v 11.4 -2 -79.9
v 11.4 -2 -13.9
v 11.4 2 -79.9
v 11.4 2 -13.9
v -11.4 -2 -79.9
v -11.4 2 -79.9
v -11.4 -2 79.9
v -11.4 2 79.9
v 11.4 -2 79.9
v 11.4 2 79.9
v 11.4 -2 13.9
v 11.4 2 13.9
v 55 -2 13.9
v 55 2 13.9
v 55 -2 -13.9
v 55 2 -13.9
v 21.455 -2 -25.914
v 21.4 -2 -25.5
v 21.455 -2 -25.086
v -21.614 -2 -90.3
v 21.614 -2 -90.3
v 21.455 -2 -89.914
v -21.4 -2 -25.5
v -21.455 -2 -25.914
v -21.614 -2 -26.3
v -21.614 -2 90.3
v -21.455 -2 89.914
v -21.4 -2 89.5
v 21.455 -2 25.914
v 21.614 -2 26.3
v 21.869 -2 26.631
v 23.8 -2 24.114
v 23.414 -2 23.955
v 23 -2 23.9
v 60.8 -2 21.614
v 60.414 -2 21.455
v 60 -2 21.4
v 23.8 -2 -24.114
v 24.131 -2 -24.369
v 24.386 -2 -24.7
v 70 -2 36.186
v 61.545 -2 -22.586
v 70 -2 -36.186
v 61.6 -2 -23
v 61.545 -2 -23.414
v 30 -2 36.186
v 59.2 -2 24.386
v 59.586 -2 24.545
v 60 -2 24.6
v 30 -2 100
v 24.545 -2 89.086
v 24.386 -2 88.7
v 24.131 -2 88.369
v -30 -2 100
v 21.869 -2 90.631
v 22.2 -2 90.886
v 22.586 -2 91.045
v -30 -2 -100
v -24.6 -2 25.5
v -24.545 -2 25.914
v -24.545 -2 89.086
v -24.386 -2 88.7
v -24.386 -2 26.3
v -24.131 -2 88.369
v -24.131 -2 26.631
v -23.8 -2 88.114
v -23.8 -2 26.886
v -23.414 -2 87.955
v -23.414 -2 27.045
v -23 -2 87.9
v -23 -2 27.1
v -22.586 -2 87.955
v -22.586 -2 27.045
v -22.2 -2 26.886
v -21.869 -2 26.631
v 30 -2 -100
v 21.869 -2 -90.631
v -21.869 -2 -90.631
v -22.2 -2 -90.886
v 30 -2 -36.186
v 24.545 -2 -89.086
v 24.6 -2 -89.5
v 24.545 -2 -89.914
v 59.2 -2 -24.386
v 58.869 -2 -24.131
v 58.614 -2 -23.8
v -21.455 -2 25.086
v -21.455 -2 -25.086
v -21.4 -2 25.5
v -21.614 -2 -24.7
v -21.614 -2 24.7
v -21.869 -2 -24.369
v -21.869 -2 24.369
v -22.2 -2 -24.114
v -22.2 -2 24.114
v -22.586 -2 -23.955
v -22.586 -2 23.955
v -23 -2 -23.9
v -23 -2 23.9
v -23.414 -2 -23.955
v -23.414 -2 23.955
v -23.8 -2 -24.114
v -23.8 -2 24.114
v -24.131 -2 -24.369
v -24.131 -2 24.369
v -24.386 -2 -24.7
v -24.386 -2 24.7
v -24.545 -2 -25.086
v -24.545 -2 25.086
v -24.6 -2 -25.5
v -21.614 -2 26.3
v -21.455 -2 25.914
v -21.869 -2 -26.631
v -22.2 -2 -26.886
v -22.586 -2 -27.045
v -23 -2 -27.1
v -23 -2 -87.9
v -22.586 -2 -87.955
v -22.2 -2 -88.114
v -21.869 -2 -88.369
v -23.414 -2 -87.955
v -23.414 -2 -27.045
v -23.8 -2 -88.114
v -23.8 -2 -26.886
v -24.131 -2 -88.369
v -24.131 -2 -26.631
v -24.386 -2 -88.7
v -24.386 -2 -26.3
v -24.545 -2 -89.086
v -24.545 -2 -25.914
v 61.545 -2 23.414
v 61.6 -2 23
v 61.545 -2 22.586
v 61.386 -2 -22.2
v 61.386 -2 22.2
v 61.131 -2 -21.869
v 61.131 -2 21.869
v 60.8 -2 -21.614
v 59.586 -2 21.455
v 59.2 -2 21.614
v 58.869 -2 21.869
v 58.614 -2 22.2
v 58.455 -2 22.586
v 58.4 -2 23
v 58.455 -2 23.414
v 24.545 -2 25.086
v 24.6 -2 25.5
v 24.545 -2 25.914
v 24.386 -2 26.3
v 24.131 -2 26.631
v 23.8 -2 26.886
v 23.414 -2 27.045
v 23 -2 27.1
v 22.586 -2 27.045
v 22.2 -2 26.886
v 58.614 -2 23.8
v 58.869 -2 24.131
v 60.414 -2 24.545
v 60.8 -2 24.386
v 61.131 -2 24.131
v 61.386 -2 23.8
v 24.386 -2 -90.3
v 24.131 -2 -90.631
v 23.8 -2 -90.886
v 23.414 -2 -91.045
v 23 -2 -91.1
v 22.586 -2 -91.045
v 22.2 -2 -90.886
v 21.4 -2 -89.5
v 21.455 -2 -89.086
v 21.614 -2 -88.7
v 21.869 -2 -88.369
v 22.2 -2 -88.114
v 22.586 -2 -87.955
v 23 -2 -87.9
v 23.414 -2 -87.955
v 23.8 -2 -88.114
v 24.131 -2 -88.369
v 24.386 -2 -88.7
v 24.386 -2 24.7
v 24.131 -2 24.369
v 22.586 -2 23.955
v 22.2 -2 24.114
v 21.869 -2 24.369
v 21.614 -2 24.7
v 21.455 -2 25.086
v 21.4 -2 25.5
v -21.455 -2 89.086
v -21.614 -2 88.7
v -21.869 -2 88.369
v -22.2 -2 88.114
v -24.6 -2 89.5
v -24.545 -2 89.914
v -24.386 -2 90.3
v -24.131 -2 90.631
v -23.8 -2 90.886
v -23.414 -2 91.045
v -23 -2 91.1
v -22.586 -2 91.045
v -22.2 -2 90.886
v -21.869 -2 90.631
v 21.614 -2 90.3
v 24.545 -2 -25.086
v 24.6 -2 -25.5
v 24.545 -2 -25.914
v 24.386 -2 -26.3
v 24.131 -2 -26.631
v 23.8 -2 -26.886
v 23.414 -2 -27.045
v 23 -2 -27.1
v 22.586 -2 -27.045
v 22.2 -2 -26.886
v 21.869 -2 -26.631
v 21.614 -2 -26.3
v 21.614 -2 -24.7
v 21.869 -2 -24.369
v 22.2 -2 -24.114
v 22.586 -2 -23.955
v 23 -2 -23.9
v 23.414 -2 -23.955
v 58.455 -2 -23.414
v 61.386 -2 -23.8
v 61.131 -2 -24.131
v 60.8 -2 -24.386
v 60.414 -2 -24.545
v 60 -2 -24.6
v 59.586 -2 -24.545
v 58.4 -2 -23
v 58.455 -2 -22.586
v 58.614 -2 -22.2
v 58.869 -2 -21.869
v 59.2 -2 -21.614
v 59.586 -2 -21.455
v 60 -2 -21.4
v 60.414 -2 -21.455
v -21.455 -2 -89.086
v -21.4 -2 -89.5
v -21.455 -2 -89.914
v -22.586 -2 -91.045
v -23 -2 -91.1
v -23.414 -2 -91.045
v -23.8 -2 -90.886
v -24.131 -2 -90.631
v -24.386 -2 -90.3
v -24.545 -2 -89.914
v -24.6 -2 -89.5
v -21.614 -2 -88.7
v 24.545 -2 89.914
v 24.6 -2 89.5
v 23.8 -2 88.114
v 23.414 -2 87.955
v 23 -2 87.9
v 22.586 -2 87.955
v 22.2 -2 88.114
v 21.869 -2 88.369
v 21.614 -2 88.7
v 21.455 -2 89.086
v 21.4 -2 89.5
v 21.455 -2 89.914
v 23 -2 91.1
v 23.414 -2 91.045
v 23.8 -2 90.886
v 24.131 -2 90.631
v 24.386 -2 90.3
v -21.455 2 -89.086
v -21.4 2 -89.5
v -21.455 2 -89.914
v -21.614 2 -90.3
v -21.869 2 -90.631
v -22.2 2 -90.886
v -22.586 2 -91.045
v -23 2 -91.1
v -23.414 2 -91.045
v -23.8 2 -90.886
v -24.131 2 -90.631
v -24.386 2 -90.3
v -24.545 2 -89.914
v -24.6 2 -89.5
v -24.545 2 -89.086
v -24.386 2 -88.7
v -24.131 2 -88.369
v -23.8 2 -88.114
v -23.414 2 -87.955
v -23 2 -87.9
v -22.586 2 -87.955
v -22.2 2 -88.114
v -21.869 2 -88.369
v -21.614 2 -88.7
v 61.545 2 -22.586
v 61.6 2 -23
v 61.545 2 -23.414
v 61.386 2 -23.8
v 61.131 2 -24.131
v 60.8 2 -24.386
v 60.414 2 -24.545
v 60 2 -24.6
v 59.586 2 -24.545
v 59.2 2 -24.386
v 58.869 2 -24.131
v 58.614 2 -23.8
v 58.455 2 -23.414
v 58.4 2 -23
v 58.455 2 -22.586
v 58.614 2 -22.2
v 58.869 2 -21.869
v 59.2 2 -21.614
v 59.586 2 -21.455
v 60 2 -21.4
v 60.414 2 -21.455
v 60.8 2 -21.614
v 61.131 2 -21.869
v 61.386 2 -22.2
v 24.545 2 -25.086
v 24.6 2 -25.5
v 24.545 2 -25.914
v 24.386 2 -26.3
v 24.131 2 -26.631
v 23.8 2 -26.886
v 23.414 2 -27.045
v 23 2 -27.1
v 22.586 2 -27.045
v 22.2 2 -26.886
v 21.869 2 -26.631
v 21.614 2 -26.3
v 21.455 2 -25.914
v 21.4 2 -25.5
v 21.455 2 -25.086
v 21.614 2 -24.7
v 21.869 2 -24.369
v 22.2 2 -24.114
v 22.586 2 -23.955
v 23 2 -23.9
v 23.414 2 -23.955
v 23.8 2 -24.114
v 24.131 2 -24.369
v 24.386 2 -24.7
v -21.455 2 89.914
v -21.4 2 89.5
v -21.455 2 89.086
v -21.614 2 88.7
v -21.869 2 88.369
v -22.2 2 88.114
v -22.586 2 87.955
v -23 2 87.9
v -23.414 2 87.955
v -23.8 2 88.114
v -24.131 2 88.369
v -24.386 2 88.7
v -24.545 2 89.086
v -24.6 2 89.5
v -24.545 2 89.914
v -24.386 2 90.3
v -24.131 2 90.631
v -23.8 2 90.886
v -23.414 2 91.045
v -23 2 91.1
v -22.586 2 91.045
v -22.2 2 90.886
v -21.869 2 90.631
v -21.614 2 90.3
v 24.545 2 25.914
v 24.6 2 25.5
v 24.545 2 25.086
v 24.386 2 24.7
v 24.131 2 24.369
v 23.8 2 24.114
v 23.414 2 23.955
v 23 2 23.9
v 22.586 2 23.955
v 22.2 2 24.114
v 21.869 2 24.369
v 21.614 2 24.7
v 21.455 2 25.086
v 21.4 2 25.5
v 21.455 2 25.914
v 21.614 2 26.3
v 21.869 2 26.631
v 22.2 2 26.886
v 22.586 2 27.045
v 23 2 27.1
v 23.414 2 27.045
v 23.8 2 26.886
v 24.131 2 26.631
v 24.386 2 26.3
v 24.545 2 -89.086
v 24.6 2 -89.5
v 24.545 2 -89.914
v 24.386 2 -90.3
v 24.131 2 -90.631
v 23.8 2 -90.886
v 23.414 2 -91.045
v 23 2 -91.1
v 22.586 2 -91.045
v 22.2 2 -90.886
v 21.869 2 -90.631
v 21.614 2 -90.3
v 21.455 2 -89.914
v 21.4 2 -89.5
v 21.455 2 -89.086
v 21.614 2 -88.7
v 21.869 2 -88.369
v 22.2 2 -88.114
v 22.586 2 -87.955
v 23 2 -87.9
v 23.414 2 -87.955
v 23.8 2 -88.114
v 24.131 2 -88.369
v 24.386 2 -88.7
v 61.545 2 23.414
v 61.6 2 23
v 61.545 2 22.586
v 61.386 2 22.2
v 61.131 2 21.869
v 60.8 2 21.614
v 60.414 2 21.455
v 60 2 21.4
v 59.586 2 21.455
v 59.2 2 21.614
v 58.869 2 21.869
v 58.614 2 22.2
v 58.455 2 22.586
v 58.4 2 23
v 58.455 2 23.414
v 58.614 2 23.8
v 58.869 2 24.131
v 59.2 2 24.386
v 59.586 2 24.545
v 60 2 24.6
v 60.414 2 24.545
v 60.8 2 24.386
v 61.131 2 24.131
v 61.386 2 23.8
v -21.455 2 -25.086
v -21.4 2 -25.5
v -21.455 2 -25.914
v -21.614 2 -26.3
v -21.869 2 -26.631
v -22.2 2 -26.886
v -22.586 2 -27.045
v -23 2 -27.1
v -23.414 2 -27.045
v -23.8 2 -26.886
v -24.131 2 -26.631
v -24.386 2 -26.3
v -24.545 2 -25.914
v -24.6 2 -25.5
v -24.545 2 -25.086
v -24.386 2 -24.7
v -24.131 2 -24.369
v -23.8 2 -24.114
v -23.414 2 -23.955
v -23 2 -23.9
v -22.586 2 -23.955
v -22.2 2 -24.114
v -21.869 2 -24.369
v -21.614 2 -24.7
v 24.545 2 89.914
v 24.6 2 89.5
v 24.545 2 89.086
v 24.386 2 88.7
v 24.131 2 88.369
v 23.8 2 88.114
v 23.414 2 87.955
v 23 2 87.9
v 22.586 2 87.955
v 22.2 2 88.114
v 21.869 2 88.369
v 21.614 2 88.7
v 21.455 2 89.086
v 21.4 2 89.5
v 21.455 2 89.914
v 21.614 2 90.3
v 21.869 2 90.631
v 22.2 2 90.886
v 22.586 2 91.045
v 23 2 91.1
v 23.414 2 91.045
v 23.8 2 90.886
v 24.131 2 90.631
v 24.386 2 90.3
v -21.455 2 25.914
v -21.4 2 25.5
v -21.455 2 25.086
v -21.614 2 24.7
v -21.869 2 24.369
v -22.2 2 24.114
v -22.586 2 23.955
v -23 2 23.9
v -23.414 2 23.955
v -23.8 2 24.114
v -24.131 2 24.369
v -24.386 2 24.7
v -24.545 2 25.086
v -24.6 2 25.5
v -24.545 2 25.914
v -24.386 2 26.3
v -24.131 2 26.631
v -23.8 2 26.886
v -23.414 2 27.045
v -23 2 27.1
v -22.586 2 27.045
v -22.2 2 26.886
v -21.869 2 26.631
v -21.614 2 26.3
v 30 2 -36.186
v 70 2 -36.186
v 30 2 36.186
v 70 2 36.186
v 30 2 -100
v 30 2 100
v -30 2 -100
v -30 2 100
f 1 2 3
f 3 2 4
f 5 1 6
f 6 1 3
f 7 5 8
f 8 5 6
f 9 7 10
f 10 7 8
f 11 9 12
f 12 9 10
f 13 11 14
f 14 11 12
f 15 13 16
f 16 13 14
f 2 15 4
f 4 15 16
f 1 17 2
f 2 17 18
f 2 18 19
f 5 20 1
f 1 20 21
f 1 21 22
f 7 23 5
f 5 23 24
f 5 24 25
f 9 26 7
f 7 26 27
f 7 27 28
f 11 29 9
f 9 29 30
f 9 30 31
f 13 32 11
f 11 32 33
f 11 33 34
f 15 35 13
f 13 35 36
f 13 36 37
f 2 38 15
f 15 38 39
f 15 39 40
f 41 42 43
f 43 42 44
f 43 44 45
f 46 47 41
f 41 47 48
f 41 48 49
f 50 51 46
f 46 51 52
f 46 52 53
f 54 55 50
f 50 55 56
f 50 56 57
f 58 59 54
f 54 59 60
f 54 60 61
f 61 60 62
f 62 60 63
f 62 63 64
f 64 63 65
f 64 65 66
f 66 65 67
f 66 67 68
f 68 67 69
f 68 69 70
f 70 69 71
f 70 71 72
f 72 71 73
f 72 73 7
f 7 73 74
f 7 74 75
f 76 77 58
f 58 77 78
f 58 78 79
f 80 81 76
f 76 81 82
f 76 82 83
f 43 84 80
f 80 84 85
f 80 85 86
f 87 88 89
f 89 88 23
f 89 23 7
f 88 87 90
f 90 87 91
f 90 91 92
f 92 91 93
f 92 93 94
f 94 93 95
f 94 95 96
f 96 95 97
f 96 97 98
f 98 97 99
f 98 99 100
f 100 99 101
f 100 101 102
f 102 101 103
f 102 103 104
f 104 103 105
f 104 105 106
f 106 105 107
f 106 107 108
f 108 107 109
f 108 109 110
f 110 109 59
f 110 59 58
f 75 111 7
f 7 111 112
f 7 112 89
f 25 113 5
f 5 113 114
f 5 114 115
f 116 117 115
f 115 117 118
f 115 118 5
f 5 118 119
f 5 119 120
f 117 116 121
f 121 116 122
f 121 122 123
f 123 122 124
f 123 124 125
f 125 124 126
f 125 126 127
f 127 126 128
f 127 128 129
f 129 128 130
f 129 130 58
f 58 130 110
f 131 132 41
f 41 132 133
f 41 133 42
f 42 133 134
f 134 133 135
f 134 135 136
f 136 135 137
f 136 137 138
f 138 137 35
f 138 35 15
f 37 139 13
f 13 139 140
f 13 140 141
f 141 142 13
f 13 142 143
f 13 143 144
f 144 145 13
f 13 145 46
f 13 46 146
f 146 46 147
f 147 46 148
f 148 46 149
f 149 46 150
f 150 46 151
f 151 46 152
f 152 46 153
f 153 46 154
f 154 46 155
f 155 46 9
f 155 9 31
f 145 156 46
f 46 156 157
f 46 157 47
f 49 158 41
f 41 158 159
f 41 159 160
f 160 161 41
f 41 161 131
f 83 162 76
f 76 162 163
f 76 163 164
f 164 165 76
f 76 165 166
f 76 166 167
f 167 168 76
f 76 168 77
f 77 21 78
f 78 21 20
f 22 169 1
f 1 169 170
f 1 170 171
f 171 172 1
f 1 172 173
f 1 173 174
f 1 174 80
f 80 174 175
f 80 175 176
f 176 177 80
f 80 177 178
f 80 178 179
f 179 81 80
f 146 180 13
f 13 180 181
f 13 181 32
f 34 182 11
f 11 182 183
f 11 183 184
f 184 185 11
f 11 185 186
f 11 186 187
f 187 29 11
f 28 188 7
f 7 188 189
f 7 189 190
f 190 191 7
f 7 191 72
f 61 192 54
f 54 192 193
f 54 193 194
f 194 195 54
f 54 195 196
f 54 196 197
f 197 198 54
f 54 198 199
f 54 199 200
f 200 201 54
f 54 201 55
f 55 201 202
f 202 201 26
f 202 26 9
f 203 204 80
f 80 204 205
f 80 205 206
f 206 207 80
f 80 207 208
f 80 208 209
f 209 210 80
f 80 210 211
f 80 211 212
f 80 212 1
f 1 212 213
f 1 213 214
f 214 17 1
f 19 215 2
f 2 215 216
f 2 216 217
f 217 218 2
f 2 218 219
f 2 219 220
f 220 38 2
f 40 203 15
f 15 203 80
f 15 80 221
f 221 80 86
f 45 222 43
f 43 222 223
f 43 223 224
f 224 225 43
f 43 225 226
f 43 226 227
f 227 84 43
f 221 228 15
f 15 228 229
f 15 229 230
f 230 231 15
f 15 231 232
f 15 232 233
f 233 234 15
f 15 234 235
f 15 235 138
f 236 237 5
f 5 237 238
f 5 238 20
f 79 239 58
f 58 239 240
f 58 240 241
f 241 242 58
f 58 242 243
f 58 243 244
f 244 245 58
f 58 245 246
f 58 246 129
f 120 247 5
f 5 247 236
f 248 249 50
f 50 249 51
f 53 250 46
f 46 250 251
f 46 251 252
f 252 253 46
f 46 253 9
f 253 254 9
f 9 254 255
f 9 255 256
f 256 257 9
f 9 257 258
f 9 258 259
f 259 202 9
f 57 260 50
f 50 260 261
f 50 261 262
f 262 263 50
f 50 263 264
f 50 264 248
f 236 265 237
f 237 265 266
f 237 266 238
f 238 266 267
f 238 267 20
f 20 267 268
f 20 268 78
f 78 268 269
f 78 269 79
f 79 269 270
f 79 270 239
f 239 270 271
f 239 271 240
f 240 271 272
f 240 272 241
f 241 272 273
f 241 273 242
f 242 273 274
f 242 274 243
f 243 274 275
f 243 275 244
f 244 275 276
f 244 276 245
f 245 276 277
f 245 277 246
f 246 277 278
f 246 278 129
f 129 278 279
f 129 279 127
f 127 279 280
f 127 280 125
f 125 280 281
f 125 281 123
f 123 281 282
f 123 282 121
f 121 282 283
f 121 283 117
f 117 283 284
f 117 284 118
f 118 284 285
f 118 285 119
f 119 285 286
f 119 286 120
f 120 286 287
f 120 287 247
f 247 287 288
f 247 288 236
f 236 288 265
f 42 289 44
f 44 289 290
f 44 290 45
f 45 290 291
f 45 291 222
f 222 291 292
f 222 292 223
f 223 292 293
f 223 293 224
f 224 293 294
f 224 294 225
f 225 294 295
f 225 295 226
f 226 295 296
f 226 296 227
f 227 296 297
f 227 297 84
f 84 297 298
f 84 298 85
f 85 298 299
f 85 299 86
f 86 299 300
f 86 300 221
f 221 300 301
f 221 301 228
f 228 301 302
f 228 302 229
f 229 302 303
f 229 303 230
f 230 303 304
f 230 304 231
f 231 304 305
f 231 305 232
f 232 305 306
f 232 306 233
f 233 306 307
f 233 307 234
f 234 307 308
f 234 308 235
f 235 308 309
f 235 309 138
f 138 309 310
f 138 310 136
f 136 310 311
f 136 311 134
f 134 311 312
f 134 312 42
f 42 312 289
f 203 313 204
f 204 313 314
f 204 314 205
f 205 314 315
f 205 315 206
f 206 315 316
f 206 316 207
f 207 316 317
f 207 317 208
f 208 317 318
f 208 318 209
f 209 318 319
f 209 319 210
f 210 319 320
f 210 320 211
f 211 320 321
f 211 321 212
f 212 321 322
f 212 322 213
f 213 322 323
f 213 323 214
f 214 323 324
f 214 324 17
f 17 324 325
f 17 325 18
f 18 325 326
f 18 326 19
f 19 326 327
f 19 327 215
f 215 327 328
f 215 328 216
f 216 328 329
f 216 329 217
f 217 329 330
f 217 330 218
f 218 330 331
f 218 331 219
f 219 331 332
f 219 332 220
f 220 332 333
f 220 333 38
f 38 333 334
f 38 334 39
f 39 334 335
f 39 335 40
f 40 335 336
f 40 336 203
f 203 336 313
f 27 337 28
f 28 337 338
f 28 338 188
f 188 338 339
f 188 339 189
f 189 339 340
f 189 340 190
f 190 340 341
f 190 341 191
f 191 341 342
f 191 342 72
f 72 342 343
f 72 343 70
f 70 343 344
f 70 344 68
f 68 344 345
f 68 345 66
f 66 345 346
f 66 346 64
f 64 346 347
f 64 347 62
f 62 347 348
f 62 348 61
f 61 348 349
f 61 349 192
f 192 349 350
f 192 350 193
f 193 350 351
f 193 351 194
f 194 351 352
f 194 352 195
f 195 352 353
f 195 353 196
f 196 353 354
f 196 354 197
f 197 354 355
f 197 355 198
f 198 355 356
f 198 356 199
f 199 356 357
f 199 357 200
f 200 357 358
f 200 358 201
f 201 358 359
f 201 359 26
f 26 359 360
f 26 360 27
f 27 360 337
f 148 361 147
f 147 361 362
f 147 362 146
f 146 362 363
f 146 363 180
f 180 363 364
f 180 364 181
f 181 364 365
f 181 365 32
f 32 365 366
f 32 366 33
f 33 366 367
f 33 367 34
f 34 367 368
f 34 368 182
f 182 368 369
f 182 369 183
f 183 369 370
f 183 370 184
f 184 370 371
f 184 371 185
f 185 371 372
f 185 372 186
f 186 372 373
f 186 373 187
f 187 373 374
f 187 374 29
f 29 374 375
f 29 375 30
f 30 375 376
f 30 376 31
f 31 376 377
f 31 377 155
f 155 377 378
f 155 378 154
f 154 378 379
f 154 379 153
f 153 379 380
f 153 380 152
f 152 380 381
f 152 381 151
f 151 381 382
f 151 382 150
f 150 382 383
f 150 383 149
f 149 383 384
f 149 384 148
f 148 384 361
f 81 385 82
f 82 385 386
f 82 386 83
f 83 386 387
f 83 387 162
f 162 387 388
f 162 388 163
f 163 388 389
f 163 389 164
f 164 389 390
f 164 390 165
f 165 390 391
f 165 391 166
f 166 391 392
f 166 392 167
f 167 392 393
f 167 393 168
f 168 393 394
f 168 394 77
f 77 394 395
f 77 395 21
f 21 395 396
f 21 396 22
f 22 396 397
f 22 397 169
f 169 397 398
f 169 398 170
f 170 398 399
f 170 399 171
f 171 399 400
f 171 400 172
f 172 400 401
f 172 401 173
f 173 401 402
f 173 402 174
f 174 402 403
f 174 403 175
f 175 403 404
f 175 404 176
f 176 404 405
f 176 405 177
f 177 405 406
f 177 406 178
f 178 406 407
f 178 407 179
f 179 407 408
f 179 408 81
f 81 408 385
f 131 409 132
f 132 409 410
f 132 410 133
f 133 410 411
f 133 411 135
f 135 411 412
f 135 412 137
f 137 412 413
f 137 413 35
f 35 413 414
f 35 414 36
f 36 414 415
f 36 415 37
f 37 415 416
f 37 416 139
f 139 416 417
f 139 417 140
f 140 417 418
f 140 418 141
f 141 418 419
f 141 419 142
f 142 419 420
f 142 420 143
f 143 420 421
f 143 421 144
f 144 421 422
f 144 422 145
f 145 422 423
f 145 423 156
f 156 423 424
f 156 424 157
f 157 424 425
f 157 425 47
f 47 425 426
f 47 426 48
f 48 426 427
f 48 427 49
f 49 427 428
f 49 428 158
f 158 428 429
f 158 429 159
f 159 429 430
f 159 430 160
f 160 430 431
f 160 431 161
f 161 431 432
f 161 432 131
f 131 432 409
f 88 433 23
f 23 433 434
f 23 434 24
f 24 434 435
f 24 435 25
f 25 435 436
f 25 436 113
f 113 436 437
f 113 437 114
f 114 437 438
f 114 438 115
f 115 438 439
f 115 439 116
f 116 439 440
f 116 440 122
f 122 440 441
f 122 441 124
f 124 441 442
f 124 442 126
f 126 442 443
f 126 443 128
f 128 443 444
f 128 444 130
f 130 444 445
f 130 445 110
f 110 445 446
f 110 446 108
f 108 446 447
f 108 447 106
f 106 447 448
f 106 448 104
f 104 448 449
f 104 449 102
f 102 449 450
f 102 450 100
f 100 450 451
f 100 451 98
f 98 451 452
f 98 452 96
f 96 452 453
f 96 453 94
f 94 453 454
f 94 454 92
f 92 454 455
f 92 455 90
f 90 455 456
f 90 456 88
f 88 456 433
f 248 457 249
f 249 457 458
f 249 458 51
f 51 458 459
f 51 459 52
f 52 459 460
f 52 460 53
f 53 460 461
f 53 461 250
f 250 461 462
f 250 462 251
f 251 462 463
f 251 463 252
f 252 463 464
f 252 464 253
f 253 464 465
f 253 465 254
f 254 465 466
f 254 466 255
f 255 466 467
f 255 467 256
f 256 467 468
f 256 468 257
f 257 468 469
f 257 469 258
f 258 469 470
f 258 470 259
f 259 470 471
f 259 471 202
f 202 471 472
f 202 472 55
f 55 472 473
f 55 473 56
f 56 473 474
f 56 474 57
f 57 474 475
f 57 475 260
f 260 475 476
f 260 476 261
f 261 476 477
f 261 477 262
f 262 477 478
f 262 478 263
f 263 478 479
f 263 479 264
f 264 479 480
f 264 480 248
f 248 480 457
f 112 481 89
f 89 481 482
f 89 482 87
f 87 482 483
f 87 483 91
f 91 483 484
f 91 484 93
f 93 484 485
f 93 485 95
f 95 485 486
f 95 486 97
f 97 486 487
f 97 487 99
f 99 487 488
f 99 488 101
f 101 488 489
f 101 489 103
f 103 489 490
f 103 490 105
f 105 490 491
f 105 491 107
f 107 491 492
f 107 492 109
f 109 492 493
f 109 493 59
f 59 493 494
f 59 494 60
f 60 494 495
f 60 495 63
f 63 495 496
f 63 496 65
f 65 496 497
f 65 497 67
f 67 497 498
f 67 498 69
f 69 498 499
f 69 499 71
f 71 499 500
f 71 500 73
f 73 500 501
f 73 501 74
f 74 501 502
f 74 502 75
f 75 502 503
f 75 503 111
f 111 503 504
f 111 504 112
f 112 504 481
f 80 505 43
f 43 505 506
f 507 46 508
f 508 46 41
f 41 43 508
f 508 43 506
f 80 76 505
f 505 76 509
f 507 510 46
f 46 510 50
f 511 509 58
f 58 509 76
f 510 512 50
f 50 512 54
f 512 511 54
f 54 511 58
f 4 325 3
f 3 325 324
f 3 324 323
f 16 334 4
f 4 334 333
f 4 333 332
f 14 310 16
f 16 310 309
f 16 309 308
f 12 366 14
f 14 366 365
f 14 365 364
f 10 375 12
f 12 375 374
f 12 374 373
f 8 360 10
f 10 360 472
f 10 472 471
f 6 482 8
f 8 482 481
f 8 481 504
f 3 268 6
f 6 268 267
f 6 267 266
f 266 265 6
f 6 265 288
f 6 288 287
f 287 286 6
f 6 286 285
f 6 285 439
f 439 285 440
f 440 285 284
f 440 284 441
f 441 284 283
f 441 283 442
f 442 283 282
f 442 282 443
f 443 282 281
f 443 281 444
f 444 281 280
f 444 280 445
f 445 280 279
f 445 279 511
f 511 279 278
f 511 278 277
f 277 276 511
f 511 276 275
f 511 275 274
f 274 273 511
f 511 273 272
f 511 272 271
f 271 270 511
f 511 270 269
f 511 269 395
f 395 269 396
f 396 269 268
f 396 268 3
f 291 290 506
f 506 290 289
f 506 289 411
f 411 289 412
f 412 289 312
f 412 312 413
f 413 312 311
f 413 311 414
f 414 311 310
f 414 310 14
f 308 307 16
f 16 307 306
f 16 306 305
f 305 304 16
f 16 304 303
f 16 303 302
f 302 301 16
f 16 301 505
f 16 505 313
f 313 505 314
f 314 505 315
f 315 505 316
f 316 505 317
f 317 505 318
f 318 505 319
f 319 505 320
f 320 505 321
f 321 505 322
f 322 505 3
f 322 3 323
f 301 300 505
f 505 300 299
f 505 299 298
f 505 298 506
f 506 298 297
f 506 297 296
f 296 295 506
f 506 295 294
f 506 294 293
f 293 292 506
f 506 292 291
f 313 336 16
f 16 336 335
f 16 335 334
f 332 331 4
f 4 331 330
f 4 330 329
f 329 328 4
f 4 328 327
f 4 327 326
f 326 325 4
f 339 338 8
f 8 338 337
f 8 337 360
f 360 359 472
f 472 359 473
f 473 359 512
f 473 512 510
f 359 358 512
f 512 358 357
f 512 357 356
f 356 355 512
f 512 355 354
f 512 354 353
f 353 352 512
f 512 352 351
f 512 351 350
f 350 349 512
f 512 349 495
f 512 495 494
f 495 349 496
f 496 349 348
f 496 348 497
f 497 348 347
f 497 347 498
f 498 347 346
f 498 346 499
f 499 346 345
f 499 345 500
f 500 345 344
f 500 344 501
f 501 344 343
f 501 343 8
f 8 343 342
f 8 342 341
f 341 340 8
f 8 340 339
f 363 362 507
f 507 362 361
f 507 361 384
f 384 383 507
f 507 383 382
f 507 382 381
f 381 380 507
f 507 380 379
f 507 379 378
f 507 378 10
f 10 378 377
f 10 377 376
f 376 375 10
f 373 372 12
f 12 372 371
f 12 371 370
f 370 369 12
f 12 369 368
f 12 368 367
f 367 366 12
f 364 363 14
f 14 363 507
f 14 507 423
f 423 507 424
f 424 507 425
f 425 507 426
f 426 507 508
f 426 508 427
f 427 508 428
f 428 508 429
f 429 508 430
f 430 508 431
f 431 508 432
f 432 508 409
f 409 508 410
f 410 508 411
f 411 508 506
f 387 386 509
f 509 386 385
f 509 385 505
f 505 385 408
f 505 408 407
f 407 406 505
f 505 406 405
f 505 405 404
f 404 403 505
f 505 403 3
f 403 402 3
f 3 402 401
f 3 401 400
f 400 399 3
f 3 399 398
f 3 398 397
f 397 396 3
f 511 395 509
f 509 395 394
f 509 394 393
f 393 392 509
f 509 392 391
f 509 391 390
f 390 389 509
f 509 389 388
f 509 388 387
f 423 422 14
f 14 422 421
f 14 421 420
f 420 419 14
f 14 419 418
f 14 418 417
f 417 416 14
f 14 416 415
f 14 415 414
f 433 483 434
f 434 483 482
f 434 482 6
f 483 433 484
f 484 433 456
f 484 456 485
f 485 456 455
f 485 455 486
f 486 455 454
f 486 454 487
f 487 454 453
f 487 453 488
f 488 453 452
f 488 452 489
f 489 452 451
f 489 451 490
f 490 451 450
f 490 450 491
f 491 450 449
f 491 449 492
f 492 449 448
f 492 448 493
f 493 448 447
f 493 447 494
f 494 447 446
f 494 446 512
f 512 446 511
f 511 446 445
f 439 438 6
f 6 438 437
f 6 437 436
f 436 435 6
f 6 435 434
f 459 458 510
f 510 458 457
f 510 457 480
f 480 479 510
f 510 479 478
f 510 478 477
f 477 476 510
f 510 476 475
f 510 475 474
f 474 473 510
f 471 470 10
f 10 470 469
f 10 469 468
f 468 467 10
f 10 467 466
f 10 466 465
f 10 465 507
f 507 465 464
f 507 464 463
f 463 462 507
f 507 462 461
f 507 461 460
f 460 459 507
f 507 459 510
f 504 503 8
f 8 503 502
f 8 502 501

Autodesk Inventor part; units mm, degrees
ref_plane "YZ Plane" through (0, 0, 0) normal (1, 0, 0) x (0, 1, 0)
ref_plane "XZ Plane" through (0, 0, 0) normal (0, 1, 0) x (-1, 0, 0)
ref_plane "XY Plane" through (0, 0, 0) normal (0, 0, 1) x (1, 0, 0)
sketch "Skizze1" plane through (0, 0, 0) normal (0, 1, 0) x (-1, 0, 0)
  line L0 (-30, 100) -> (30, 100)
  line L1 (30, 100) -> (30, -100)
  line L2 (30, -100) -> (-30, -100)
  line L3 (-30, -100) -> (-30, 100)
  line L4 (-30, 100) -> (30, -100) construction
  line L5 (30, 100) -> (-30, -100) construction
  line L6 (0, -140) -> (0, 140) projected
  line L7 (-42, 0) -> (42, 0) projected
  point P0 (0, 0)
  point P1 (0, 0)
  dimension "d0" = 60
  dimension "d1" = 200
extrude "Extrusion1" add sketch "Skizze1" along normal blind 2
sketch "Skizze3" plane through (30, 0, 100) normal (1, 0, 0) x (0, 0, -1)
  line L0 (200, 2) -> (0, 2) projected
  line L1 (200, 0) -> (0, 0) projected
  line L2 (63.8142, 2) -> (136.1858, 2)
  line L3 (136.1858, 2) -> (136.1858, 0)
  line L4 (136.1858, 0) -> (63.8142, 0)
  line L5 (63.8142, 0) -> (63.8142, 2)
  line L6 (100, -0.4) -> (100, 2.4) projected
  point P0 (100, 0)
extrude "Extrusion3" add sketch "Skizze3" along normal blind 40
sketch "Skizze2" plane through (0, 2, 0) normal (0, 1, 0) x (1, 0, 0)
  line L0 (0, 140) -> (0, -140) projected
  line L1 (90, 0) -> (-50, 0) projected
  circle A0 centre (-23, 89.5) radius 1.6
  circle A1 centre (23, 89.5) radius 1.6
  line L2 (30, 100) -> (-30, 100) projected
  circle A2 centre (-23, 25.5) radius 1.6
  circle A3 centre (23, 25.5) radius 1.6
  circle A4 centre (-23, -89.5) radius 1.6
  circle A5 centre (23, -89.5) radius 1.6
  circle A6 centre (-23, -25.5) radius 1.6
  circle A7 centre (23, -25.5) radius 1.6
  line L3 (25, 83.9) -> (25, 31.1)
  line L4 (-25, 31.1) -> (-25, 83.9)
  line L5 (-30, 100) -> (-30, -100) projected
  line L6 (30, -100) -> (30, 100) projected
  line L7 (-17.4, 96) -> (17.4, 96)
  line L8 (17.4, 96) -> (17.4, 83.9)
  line L9 (-17.4, 83.9) -> (-17.4, 96)
  line L10 (-25, 83.9) -> (-17.4, 83.9)
  line L11 (17.4, 83.9) -> (25, 83.9)
  line L12 (17.4, -96) -> (-17.4, -96)
  line L13 (25, 31.1) -> (17.4, 31.1)
  line L14 (-17.4, 31.1) -> (-25, 31.1)
  line L15 (-30, -100) -> (30, -100) projected
  line L16 (-17.4, -31.1) -> (-26, -31.1)
  line L17 (-26, -31.1) -> (-26, -83.9)
  line L18 (-26, -83.9) -> (-17.4, -83.9)
  line L19 (17.4, -31.1) -> (26, -31.1)
  line L20 (26, -31.1) -> (26, -83.9)
  line L21 (26, -83.9) -> (17.4, -83.9)
  line L22 (-17.4, 19.9) -> (-26, 19.9)
  line L23 (-26, 19.9) -> (-26, -19.9)
  line L24 (-26, -19.9) -> (-17.4, -19.9)
  line L25 (17.4, 19.9) -> (26, 19.9)
  line L26 (26, 19.9) -> (26, -19.9)
  line L27 (26, -19.9) -> (17.4, -19.9)
  line L28 (-17.4, 19.9) -> (-17.4, 31.1)
  line L29 (17.4, 31.1) -> (17.4, 19.9)
  line L30 (17.4, -19.9) -> (17.4, -31.1)
  line L31 (17.4, -83.9) -> (17.4, -96)
  line L32 (-17.4, -96) -> (-17.4, -83.9)
  line L33 (-17.4, -31.1) -> (-17.4, -19.9)
  circle A8 centre (60, 23) radius 1.6
  circle A9 centre (60, -23) radius 1.6
  line L34 (30, 32.1858) -> (54.4, 32.1858)
  line L35 (54.4, -32.1858) -> (30, -32.1858)
  line L36 (30, -32.1858) -> (30, 32.1858)
  line L37 (30, -36.1858) -> (70, -36.1858) projected
  line L38 (30, 36.1858) -> (70, 36.1858) projected
  line L39 (54.4, 17.4) -> (66, 17.4)
  line L40 (66, 17.4) -> (66, -17.4)
  line L41 (66, -17.4) -> (54.4, -17.4)
  line L42 (70, 36.1858) -> (70, -36.1858) projected
  line L43 (54.4, 32.1858) -> (66, 32.1858)
  line L44 (66, 32.1858) -> (66, 28.6)
  line L45 (66, 28.6) -> (54.4, 28.6)
  line L46 (54.4, -28.6) -> (66, -28.6)
  line L47 (66, -28.6) -> (66, -32.1858)
  line L48 (66, -32.1858) -> (54.4, -32.1858)
  line L49 (54.4, 28.6) -> (54.4, 17.4)
  line L50 (54.4, -17.4) -> (54.4, -28.6)
  point P0 (0, 0)
  dimension "d2" = 2
  dimension "d4" = 3.2
  dimension "d5" = 3.2
  dimension "d6" = 10.5
  dimension "d7" = 10.5
  dimension "d8" = 23
  dimension "d9" = 23
  dimension "d10" = 3.2
  dimension "d11" = 3.2
  dimension "d12" = 23
  dimension "d13" = 23
  dimension "d14" = 25.5
  dimension "d15" = 25.5
  dimension "d16" = 5
  dimension "d17" = 5
  dimension "d23" = 4
  dimension "d24" = 4
  dimension "d25" = 4
  dimension "d26" = 4
  dimension "d27" = 4
  dimension "d30" = 4
  dimension "d31" = 4
  dimension "d33" = 4
  dimension "d34" = 4
  dimension "d35" = 4
  dimension "d36" = 4
  dimension "d37" = 4
  dimension "d38" = 4
  dimension "d39" = 4
  dimension "d40" = 4
  dimension "d41" = 4
  dimension "d42" = 4
  dimension "d43" = 4
  dimension "d44" = 4
  dimension "d45" = 4
  dimension "d48" = 12.6
  dimension "d49" = 12.6
  dimension "d50" = 12.6
  dimension "d51" = 12.6
  dimension "d52" = 12.6
  dimension "d53" = 12.6
  dimension "d58" = 3.2
  dimension "d59" = 3.2
  dimension "d60" = 23
  dimension "d61" = 23
  dimension "d64" = 37
  dimension "d65" = 37
  dimension "d66" = 4
  dimension "d68" = 4
  dimension "d69" = 4
  dimension "d70" = 4
  dimension "d71" = 4
  dimension "d72" = 4
  dimension "d73" = 4
  dimension "d74" = 4
  dimension "d75" = 4
  dimension "d76" = 4
  dimension "d77" = 15.6
  dimension "d78" = 15.6
extrude "Extrusion2" cut sketch "Skizze2" against normal up to surface (2 mm away) contours A0 | A1 | A2 | A3 | A4 | A5 | A6 | A7 | A8 | A9
sketch "Skizze4" plane through (0, 0, 0) normal (0, -1, 0) x (1, 0, 0)
  circle A0 centre (-23, -89.5) radius 1.6 projected
  circle A1 centre (60, -23) radius 1.6 projected
  circle A2 centre (23, -25.5) radius 1.6 projected
  circle A3 centre (-23, 89.5) radius 1.6 projected
  circle A4 centre (23, 25.5) radius 1.6 projected
  circle A5 centre (23, -89.5) radius 1.6 projected
  circle A6 centre (60, 23) radius 1.6 projected
  circle A7 centre (-23, -25.5) radius 1.6 projected
  circle A8 centre (23, 89.5) radius 1.6 projected
  circle A9 centre (-23, 25.5) radius 1.6 projected
  line L0 (-30, -100) -> (-30, 100) projected
  line L1 (30, -100) -> (-30, -100) projected
  line L2 (30, -36.1858) -> (30, -100) projected
  line L3 (30, -36.1858) -> (70, -36.1858) projected
  line L4 (70, 36.1858) -> (70, -36.1858) projected
  line L5 (30, 36.1858) -> (70, 36.1858) projected
  line L6 (30, 100) -> (30, 36.1858) projected
  line L7 (-30, 100) -> (30, 100) projected
  point P0 (0, 0)
extrude "Extrusion4" add sketch "Skizze4" along normal blind 2
sketch "Skizze5" plane through (0, 2, 0) normal (0, 1, 0) x (1, 0, 0)
  line L0 (-11.4, 79.9) -> (11.4, 79.9)
  line L1 (11.4, -79.9) -> (-11.4, -79.9)
  line L2 (-11.4, -79.9) -> (-11.4, 79.9)
  circle A0 centre (-23, 25.5) radius 1.6 projected
  circle A1 centre (23, 25.5) radius 1.6 projected
  circle A2 centre (23, 89.5) radius 1.6 projected
  circle A3 centre (-23, -89.5) radius 1.6 projected
  line L3 (11.4, 13.9) -> (55, 13.9)
  line L4 (55, 13.9) -> (55, -13.9)
  line L5 (55, -13.9) -> (11.4, -13.9)
  line L6 (70, 36.1858) -> (70, -36.1858) projected
  circle A4 centre (23, -25.5) radius 1.6 projected
  line L7 (11.4, 79.9) -> (11.4, 13.9)
  line L8 (11.4, -13.9) -> (11.4, -79.9)
  line L9 (30, 36.1858) -> (30, 100) projected
  line L10 (30, -100) -> (30, -36.1858) projected
  point P0 (0, 0)
  dimension "d81" = 10
  dimension "d83" = 8
  dimension "d84" = 8
  dimension "d85" = 15
  dimension "d86" = 10
  dimension "d87" = 10
  dimension "d88" = 18.6
  dimension "d89" = 18.6
extrude "Extrusion5" cut sketch "Skizze5" against normal up to surface (4 mm away) contours L0 L7 L3 L4 L5 L8 L1 L2
properties part number "_3D-Druck"
